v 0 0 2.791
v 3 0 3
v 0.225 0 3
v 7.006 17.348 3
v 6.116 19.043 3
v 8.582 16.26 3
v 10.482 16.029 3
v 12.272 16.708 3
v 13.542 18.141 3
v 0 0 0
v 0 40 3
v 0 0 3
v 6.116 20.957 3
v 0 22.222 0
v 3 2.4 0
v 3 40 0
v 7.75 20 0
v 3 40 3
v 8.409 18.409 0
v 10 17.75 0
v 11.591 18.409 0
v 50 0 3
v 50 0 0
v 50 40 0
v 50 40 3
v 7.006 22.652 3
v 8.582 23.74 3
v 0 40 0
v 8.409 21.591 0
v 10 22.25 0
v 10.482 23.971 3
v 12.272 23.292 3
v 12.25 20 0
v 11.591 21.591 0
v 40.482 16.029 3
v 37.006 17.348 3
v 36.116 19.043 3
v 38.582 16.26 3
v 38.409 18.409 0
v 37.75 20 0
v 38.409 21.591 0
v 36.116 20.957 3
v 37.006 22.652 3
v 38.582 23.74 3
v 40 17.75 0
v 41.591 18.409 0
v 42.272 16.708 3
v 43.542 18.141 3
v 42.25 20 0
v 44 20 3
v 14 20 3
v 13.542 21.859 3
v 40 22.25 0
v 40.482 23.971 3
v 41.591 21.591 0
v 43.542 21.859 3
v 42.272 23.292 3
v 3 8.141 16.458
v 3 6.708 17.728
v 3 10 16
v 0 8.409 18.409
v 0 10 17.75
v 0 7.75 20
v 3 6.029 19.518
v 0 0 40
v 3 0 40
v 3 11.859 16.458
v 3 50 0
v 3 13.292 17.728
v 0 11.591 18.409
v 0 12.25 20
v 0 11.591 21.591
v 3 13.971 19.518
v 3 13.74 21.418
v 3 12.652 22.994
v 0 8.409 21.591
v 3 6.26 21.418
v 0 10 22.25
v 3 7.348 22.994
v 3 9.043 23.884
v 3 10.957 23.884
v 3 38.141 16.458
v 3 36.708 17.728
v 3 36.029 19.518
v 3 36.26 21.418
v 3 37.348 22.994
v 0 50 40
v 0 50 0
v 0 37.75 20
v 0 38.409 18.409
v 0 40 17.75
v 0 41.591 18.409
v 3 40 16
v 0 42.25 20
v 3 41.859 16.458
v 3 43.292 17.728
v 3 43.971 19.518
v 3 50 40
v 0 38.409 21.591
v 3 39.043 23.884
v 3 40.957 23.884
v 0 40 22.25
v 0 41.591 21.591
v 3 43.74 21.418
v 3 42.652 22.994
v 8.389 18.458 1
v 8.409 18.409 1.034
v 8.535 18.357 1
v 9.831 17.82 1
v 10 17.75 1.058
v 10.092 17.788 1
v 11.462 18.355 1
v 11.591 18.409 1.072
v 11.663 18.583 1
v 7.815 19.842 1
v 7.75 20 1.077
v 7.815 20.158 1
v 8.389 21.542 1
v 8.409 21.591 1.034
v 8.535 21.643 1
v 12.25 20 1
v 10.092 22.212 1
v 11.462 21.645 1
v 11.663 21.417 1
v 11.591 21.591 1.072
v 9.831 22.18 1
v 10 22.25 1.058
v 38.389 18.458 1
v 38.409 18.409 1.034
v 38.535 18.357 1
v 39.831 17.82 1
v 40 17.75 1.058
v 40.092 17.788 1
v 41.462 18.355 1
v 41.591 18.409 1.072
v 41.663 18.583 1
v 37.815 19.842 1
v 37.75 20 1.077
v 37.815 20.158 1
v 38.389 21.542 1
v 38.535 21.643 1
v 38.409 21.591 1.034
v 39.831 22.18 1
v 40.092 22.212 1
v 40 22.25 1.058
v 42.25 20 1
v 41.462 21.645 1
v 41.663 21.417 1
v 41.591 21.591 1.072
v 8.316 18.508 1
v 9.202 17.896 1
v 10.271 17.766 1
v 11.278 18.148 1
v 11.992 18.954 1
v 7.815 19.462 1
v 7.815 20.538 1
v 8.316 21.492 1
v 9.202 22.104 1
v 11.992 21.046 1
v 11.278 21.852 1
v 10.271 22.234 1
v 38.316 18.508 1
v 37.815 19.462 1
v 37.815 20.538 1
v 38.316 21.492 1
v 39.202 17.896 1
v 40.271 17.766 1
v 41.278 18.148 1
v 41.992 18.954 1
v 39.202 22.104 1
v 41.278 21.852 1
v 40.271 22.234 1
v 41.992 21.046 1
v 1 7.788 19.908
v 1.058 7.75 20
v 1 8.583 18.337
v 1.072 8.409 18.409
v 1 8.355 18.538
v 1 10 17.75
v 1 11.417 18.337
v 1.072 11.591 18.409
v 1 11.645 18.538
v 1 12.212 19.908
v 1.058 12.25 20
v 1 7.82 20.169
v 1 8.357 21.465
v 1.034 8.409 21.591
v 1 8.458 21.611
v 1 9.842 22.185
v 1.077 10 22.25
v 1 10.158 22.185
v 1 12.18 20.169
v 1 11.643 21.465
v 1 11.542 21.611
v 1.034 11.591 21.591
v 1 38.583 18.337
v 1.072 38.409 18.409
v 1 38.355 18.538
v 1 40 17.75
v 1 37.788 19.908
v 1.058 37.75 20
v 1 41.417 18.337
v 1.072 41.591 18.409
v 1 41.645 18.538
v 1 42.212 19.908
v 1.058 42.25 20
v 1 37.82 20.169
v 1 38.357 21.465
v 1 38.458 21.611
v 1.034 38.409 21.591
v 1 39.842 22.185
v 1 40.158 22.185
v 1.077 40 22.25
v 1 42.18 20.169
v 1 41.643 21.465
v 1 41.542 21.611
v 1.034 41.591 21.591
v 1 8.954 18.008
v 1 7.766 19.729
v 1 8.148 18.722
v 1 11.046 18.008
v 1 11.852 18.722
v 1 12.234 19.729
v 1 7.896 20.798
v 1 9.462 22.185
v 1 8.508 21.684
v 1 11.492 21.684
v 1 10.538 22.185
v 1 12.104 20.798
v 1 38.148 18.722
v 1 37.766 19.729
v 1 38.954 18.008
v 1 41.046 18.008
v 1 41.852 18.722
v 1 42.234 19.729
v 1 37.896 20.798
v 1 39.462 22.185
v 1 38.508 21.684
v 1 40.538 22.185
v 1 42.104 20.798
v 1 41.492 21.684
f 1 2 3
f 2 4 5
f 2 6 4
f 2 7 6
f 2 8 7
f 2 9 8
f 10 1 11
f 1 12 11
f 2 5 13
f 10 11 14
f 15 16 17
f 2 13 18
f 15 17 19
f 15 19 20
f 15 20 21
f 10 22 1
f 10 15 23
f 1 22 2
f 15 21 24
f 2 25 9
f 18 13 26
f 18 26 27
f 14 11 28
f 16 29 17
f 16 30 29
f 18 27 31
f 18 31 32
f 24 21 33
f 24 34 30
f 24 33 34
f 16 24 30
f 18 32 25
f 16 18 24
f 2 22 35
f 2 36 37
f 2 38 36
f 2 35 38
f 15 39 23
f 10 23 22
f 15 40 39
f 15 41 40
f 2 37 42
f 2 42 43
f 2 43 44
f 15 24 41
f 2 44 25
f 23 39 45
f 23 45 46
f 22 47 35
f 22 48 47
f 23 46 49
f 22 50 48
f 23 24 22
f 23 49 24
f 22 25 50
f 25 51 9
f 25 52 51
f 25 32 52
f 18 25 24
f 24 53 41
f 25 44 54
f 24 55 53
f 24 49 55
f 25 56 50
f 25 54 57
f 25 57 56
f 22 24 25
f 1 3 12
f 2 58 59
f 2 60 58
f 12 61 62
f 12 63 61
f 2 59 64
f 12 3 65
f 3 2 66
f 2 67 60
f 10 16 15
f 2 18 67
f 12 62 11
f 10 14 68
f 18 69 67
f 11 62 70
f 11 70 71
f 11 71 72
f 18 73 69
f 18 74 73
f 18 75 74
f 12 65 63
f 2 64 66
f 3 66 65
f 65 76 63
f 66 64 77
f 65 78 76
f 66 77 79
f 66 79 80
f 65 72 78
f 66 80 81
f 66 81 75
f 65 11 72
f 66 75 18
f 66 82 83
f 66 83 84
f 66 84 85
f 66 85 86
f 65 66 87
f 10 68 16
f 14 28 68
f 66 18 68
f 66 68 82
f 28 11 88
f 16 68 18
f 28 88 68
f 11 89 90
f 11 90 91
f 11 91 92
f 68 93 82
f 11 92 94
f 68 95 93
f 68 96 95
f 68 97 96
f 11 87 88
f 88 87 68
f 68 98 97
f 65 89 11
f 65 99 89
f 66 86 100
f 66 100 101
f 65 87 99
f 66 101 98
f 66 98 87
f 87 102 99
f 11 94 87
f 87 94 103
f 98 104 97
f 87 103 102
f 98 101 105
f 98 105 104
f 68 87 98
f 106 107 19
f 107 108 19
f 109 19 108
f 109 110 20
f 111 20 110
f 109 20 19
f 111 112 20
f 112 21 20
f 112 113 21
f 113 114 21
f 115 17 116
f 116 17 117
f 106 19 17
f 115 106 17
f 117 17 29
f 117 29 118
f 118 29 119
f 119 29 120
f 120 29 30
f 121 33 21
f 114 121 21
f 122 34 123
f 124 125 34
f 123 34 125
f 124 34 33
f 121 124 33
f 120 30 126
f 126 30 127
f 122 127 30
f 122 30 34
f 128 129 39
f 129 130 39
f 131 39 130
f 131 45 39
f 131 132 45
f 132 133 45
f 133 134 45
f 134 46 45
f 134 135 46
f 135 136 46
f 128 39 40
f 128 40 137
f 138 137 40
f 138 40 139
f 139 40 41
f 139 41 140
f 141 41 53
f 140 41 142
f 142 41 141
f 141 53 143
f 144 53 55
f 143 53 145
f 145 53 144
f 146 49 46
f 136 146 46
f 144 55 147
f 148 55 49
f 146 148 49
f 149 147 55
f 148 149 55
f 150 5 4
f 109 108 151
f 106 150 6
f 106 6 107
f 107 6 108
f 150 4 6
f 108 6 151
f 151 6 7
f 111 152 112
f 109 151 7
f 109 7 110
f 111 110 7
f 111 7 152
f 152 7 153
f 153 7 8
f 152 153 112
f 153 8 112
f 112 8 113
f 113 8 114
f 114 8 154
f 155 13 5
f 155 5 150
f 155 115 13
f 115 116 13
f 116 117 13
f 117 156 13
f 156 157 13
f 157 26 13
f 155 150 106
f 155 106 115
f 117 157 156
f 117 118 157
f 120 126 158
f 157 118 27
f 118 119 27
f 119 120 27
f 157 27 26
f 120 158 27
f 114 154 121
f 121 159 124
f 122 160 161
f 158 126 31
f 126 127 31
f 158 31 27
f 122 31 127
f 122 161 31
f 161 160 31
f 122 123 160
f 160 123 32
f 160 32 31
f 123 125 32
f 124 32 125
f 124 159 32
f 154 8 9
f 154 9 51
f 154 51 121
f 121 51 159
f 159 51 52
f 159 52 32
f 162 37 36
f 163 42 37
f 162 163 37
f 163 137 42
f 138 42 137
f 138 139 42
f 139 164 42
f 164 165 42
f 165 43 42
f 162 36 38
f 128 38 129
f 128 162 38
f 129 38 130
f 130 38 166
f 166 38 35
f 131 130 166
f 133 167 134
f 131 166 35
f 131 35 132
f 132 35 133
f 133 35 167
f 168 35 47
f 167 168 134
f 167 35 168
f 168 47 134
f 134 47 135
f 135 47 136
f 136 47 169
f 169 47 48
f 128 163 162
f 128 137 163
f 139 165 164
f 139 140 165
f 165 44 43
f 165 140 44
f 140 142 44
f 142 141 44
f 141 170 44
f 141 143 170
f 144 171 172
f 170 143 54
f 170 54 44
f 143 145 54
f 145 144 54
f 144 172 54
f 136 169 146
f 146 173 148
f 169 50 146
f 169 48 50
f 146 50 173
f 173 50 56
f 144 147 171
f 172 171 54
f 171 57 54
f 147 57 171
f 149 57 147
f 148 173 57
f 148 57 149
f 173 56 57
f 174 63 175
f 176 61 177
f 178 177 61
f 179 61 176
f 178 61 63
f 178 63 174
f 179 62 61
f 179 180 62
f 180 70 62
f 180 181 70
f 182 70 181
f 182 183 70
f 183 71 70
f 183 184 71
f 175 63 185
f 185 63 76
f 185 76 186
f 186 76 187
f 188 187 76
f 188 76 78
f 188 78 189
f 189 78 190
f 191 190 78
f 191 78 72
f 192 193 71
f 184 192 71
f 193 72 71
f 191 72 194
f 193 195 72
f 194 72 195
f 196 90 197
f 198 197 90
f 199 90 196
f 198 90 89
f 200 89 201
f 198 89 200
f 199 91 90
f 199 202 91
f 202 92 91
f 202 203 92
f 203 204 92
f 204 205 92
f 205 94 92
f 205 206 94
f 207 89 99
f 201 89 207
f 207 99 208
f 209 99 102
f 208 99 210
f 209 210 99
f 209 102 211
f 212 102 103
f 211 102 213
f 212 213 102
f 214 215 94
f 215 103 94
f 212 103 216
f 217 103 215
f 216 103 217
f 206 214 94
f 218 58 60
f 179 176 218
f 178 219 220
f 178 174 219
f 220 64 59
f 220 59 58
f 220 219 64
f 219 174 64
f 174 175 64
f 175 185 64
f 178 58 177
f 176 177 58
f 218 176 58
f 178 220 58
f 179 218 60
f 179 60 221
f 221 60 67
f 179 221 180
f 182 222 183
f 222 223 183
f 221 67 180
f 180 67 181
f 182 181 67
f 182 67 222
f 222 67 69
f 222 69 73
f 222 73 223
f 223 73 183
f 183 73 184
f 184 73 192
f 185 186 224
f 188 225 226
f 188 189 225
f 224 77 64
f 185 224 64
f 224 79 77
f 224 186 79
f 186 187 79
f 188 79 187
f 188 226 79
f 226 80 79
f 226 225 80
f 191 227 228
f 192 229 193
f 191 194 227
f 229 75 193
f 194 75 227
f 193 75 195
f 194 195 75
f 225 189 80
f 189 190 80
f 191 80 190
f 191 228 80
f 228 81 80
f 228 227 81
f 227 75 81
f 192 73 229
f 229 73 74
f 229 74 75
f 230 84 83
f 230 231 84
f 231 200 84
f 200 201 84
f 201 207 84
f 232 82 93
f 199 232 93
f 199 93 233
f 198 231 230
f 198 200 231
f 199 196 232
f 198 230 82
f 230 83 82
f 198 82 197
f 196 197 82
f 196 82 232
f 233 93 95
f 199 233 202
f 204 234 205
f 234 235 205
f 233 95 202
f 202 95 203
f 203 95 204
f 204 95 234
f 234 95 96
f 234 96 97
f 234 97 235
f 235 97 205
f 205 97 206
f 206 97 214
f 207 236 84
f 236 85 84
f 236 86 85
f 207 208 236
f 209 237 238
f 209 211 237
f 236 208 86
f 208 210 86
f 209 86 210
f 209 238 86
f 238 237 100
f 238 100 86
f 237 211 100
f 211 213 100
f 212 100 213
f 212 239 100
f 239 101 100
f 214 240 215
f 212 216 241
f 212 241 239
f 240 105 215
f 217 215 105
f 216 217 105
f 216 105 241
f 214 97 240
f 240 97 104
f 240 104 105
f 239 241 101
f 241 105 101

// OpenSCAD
// 修正 OpenSCAD: L字金具 (水平板: 50x40x3, 垂直板: 3x50x40, 内側コーナー原点(0,0,0))
// 水平面は +Y 方向、垂直面は +Z 方向に伸びる
// 皿穴は各面2個ずつ、計4個、M4 countersunk (Φ4.5 穴 + Φ8 × 深さ2 の皿座面)
// 各穴は面の中心線上、面の縁から10mm内側、左右対称に配置
difference() {
  union() {
    // 水平板: 50 (X) × 40 (Y) × 3 (Z)
    cube([50, 40, 3], center=false);
    // 垂直板: 3 (X) × 50 (Y) × 40 (Z)
    cube([3, 50, 40], center=false);
  }

  // 水平板の皿穴 (2個、貫通穴 Φ4.5, 皿座面 Φ8 × 深さ 2)
  // 中心点: (X, Y) = (10, 20) と (40, 20)
  translate([10, 20, 0]) cylinder(h=3, r=2.25, center=false);
  translate([40, 20, 0]) cylinder(h=3, r=2.25, center=false);

  // 水平板の皿座面（外側へ向ける: 上面側 z=3 に向かう）
  translate([10, 20, 1]) cylinder(h=2, r1=2.25, r2=4, center=false);
  translate([40, 20, 1]) cylinder(h=2, r1=2.25, r2=4, center=false);

  // 垂直板の皿穴 (2個、貫通穴 Φ4.5, 皿座面 Φ8 × 深さ 2)
  // 貫通方向を X 軸に合わせるため、穴を X 軸方向に貫通させる
  translate([0, 10, 20]) rotate([0, 90, 0]) cylinder(h=3, r=2.25, center=false);
  translate([0, 40, 20]) rotate([0, 90, 0]) cylinder(h=3, r=2.25, center=false);

  // 垂直板の皿座面（外側へ向ける: ボルト頭が当たる側は +X 側）
  // 座の深さ 2, 座径 Φ8, 先端径Φ4.5 を X 軸方向に配置
  translate([1, 10, 20]) rotate([0, 90, 0]) cylinder(h=2, r1=2.25, r2=4, center=false);
  translate([1, 40, 20]) rotate([0, 90, 0]) cylinder(h=2, r1=2.25, r2=4, center=false);
}
